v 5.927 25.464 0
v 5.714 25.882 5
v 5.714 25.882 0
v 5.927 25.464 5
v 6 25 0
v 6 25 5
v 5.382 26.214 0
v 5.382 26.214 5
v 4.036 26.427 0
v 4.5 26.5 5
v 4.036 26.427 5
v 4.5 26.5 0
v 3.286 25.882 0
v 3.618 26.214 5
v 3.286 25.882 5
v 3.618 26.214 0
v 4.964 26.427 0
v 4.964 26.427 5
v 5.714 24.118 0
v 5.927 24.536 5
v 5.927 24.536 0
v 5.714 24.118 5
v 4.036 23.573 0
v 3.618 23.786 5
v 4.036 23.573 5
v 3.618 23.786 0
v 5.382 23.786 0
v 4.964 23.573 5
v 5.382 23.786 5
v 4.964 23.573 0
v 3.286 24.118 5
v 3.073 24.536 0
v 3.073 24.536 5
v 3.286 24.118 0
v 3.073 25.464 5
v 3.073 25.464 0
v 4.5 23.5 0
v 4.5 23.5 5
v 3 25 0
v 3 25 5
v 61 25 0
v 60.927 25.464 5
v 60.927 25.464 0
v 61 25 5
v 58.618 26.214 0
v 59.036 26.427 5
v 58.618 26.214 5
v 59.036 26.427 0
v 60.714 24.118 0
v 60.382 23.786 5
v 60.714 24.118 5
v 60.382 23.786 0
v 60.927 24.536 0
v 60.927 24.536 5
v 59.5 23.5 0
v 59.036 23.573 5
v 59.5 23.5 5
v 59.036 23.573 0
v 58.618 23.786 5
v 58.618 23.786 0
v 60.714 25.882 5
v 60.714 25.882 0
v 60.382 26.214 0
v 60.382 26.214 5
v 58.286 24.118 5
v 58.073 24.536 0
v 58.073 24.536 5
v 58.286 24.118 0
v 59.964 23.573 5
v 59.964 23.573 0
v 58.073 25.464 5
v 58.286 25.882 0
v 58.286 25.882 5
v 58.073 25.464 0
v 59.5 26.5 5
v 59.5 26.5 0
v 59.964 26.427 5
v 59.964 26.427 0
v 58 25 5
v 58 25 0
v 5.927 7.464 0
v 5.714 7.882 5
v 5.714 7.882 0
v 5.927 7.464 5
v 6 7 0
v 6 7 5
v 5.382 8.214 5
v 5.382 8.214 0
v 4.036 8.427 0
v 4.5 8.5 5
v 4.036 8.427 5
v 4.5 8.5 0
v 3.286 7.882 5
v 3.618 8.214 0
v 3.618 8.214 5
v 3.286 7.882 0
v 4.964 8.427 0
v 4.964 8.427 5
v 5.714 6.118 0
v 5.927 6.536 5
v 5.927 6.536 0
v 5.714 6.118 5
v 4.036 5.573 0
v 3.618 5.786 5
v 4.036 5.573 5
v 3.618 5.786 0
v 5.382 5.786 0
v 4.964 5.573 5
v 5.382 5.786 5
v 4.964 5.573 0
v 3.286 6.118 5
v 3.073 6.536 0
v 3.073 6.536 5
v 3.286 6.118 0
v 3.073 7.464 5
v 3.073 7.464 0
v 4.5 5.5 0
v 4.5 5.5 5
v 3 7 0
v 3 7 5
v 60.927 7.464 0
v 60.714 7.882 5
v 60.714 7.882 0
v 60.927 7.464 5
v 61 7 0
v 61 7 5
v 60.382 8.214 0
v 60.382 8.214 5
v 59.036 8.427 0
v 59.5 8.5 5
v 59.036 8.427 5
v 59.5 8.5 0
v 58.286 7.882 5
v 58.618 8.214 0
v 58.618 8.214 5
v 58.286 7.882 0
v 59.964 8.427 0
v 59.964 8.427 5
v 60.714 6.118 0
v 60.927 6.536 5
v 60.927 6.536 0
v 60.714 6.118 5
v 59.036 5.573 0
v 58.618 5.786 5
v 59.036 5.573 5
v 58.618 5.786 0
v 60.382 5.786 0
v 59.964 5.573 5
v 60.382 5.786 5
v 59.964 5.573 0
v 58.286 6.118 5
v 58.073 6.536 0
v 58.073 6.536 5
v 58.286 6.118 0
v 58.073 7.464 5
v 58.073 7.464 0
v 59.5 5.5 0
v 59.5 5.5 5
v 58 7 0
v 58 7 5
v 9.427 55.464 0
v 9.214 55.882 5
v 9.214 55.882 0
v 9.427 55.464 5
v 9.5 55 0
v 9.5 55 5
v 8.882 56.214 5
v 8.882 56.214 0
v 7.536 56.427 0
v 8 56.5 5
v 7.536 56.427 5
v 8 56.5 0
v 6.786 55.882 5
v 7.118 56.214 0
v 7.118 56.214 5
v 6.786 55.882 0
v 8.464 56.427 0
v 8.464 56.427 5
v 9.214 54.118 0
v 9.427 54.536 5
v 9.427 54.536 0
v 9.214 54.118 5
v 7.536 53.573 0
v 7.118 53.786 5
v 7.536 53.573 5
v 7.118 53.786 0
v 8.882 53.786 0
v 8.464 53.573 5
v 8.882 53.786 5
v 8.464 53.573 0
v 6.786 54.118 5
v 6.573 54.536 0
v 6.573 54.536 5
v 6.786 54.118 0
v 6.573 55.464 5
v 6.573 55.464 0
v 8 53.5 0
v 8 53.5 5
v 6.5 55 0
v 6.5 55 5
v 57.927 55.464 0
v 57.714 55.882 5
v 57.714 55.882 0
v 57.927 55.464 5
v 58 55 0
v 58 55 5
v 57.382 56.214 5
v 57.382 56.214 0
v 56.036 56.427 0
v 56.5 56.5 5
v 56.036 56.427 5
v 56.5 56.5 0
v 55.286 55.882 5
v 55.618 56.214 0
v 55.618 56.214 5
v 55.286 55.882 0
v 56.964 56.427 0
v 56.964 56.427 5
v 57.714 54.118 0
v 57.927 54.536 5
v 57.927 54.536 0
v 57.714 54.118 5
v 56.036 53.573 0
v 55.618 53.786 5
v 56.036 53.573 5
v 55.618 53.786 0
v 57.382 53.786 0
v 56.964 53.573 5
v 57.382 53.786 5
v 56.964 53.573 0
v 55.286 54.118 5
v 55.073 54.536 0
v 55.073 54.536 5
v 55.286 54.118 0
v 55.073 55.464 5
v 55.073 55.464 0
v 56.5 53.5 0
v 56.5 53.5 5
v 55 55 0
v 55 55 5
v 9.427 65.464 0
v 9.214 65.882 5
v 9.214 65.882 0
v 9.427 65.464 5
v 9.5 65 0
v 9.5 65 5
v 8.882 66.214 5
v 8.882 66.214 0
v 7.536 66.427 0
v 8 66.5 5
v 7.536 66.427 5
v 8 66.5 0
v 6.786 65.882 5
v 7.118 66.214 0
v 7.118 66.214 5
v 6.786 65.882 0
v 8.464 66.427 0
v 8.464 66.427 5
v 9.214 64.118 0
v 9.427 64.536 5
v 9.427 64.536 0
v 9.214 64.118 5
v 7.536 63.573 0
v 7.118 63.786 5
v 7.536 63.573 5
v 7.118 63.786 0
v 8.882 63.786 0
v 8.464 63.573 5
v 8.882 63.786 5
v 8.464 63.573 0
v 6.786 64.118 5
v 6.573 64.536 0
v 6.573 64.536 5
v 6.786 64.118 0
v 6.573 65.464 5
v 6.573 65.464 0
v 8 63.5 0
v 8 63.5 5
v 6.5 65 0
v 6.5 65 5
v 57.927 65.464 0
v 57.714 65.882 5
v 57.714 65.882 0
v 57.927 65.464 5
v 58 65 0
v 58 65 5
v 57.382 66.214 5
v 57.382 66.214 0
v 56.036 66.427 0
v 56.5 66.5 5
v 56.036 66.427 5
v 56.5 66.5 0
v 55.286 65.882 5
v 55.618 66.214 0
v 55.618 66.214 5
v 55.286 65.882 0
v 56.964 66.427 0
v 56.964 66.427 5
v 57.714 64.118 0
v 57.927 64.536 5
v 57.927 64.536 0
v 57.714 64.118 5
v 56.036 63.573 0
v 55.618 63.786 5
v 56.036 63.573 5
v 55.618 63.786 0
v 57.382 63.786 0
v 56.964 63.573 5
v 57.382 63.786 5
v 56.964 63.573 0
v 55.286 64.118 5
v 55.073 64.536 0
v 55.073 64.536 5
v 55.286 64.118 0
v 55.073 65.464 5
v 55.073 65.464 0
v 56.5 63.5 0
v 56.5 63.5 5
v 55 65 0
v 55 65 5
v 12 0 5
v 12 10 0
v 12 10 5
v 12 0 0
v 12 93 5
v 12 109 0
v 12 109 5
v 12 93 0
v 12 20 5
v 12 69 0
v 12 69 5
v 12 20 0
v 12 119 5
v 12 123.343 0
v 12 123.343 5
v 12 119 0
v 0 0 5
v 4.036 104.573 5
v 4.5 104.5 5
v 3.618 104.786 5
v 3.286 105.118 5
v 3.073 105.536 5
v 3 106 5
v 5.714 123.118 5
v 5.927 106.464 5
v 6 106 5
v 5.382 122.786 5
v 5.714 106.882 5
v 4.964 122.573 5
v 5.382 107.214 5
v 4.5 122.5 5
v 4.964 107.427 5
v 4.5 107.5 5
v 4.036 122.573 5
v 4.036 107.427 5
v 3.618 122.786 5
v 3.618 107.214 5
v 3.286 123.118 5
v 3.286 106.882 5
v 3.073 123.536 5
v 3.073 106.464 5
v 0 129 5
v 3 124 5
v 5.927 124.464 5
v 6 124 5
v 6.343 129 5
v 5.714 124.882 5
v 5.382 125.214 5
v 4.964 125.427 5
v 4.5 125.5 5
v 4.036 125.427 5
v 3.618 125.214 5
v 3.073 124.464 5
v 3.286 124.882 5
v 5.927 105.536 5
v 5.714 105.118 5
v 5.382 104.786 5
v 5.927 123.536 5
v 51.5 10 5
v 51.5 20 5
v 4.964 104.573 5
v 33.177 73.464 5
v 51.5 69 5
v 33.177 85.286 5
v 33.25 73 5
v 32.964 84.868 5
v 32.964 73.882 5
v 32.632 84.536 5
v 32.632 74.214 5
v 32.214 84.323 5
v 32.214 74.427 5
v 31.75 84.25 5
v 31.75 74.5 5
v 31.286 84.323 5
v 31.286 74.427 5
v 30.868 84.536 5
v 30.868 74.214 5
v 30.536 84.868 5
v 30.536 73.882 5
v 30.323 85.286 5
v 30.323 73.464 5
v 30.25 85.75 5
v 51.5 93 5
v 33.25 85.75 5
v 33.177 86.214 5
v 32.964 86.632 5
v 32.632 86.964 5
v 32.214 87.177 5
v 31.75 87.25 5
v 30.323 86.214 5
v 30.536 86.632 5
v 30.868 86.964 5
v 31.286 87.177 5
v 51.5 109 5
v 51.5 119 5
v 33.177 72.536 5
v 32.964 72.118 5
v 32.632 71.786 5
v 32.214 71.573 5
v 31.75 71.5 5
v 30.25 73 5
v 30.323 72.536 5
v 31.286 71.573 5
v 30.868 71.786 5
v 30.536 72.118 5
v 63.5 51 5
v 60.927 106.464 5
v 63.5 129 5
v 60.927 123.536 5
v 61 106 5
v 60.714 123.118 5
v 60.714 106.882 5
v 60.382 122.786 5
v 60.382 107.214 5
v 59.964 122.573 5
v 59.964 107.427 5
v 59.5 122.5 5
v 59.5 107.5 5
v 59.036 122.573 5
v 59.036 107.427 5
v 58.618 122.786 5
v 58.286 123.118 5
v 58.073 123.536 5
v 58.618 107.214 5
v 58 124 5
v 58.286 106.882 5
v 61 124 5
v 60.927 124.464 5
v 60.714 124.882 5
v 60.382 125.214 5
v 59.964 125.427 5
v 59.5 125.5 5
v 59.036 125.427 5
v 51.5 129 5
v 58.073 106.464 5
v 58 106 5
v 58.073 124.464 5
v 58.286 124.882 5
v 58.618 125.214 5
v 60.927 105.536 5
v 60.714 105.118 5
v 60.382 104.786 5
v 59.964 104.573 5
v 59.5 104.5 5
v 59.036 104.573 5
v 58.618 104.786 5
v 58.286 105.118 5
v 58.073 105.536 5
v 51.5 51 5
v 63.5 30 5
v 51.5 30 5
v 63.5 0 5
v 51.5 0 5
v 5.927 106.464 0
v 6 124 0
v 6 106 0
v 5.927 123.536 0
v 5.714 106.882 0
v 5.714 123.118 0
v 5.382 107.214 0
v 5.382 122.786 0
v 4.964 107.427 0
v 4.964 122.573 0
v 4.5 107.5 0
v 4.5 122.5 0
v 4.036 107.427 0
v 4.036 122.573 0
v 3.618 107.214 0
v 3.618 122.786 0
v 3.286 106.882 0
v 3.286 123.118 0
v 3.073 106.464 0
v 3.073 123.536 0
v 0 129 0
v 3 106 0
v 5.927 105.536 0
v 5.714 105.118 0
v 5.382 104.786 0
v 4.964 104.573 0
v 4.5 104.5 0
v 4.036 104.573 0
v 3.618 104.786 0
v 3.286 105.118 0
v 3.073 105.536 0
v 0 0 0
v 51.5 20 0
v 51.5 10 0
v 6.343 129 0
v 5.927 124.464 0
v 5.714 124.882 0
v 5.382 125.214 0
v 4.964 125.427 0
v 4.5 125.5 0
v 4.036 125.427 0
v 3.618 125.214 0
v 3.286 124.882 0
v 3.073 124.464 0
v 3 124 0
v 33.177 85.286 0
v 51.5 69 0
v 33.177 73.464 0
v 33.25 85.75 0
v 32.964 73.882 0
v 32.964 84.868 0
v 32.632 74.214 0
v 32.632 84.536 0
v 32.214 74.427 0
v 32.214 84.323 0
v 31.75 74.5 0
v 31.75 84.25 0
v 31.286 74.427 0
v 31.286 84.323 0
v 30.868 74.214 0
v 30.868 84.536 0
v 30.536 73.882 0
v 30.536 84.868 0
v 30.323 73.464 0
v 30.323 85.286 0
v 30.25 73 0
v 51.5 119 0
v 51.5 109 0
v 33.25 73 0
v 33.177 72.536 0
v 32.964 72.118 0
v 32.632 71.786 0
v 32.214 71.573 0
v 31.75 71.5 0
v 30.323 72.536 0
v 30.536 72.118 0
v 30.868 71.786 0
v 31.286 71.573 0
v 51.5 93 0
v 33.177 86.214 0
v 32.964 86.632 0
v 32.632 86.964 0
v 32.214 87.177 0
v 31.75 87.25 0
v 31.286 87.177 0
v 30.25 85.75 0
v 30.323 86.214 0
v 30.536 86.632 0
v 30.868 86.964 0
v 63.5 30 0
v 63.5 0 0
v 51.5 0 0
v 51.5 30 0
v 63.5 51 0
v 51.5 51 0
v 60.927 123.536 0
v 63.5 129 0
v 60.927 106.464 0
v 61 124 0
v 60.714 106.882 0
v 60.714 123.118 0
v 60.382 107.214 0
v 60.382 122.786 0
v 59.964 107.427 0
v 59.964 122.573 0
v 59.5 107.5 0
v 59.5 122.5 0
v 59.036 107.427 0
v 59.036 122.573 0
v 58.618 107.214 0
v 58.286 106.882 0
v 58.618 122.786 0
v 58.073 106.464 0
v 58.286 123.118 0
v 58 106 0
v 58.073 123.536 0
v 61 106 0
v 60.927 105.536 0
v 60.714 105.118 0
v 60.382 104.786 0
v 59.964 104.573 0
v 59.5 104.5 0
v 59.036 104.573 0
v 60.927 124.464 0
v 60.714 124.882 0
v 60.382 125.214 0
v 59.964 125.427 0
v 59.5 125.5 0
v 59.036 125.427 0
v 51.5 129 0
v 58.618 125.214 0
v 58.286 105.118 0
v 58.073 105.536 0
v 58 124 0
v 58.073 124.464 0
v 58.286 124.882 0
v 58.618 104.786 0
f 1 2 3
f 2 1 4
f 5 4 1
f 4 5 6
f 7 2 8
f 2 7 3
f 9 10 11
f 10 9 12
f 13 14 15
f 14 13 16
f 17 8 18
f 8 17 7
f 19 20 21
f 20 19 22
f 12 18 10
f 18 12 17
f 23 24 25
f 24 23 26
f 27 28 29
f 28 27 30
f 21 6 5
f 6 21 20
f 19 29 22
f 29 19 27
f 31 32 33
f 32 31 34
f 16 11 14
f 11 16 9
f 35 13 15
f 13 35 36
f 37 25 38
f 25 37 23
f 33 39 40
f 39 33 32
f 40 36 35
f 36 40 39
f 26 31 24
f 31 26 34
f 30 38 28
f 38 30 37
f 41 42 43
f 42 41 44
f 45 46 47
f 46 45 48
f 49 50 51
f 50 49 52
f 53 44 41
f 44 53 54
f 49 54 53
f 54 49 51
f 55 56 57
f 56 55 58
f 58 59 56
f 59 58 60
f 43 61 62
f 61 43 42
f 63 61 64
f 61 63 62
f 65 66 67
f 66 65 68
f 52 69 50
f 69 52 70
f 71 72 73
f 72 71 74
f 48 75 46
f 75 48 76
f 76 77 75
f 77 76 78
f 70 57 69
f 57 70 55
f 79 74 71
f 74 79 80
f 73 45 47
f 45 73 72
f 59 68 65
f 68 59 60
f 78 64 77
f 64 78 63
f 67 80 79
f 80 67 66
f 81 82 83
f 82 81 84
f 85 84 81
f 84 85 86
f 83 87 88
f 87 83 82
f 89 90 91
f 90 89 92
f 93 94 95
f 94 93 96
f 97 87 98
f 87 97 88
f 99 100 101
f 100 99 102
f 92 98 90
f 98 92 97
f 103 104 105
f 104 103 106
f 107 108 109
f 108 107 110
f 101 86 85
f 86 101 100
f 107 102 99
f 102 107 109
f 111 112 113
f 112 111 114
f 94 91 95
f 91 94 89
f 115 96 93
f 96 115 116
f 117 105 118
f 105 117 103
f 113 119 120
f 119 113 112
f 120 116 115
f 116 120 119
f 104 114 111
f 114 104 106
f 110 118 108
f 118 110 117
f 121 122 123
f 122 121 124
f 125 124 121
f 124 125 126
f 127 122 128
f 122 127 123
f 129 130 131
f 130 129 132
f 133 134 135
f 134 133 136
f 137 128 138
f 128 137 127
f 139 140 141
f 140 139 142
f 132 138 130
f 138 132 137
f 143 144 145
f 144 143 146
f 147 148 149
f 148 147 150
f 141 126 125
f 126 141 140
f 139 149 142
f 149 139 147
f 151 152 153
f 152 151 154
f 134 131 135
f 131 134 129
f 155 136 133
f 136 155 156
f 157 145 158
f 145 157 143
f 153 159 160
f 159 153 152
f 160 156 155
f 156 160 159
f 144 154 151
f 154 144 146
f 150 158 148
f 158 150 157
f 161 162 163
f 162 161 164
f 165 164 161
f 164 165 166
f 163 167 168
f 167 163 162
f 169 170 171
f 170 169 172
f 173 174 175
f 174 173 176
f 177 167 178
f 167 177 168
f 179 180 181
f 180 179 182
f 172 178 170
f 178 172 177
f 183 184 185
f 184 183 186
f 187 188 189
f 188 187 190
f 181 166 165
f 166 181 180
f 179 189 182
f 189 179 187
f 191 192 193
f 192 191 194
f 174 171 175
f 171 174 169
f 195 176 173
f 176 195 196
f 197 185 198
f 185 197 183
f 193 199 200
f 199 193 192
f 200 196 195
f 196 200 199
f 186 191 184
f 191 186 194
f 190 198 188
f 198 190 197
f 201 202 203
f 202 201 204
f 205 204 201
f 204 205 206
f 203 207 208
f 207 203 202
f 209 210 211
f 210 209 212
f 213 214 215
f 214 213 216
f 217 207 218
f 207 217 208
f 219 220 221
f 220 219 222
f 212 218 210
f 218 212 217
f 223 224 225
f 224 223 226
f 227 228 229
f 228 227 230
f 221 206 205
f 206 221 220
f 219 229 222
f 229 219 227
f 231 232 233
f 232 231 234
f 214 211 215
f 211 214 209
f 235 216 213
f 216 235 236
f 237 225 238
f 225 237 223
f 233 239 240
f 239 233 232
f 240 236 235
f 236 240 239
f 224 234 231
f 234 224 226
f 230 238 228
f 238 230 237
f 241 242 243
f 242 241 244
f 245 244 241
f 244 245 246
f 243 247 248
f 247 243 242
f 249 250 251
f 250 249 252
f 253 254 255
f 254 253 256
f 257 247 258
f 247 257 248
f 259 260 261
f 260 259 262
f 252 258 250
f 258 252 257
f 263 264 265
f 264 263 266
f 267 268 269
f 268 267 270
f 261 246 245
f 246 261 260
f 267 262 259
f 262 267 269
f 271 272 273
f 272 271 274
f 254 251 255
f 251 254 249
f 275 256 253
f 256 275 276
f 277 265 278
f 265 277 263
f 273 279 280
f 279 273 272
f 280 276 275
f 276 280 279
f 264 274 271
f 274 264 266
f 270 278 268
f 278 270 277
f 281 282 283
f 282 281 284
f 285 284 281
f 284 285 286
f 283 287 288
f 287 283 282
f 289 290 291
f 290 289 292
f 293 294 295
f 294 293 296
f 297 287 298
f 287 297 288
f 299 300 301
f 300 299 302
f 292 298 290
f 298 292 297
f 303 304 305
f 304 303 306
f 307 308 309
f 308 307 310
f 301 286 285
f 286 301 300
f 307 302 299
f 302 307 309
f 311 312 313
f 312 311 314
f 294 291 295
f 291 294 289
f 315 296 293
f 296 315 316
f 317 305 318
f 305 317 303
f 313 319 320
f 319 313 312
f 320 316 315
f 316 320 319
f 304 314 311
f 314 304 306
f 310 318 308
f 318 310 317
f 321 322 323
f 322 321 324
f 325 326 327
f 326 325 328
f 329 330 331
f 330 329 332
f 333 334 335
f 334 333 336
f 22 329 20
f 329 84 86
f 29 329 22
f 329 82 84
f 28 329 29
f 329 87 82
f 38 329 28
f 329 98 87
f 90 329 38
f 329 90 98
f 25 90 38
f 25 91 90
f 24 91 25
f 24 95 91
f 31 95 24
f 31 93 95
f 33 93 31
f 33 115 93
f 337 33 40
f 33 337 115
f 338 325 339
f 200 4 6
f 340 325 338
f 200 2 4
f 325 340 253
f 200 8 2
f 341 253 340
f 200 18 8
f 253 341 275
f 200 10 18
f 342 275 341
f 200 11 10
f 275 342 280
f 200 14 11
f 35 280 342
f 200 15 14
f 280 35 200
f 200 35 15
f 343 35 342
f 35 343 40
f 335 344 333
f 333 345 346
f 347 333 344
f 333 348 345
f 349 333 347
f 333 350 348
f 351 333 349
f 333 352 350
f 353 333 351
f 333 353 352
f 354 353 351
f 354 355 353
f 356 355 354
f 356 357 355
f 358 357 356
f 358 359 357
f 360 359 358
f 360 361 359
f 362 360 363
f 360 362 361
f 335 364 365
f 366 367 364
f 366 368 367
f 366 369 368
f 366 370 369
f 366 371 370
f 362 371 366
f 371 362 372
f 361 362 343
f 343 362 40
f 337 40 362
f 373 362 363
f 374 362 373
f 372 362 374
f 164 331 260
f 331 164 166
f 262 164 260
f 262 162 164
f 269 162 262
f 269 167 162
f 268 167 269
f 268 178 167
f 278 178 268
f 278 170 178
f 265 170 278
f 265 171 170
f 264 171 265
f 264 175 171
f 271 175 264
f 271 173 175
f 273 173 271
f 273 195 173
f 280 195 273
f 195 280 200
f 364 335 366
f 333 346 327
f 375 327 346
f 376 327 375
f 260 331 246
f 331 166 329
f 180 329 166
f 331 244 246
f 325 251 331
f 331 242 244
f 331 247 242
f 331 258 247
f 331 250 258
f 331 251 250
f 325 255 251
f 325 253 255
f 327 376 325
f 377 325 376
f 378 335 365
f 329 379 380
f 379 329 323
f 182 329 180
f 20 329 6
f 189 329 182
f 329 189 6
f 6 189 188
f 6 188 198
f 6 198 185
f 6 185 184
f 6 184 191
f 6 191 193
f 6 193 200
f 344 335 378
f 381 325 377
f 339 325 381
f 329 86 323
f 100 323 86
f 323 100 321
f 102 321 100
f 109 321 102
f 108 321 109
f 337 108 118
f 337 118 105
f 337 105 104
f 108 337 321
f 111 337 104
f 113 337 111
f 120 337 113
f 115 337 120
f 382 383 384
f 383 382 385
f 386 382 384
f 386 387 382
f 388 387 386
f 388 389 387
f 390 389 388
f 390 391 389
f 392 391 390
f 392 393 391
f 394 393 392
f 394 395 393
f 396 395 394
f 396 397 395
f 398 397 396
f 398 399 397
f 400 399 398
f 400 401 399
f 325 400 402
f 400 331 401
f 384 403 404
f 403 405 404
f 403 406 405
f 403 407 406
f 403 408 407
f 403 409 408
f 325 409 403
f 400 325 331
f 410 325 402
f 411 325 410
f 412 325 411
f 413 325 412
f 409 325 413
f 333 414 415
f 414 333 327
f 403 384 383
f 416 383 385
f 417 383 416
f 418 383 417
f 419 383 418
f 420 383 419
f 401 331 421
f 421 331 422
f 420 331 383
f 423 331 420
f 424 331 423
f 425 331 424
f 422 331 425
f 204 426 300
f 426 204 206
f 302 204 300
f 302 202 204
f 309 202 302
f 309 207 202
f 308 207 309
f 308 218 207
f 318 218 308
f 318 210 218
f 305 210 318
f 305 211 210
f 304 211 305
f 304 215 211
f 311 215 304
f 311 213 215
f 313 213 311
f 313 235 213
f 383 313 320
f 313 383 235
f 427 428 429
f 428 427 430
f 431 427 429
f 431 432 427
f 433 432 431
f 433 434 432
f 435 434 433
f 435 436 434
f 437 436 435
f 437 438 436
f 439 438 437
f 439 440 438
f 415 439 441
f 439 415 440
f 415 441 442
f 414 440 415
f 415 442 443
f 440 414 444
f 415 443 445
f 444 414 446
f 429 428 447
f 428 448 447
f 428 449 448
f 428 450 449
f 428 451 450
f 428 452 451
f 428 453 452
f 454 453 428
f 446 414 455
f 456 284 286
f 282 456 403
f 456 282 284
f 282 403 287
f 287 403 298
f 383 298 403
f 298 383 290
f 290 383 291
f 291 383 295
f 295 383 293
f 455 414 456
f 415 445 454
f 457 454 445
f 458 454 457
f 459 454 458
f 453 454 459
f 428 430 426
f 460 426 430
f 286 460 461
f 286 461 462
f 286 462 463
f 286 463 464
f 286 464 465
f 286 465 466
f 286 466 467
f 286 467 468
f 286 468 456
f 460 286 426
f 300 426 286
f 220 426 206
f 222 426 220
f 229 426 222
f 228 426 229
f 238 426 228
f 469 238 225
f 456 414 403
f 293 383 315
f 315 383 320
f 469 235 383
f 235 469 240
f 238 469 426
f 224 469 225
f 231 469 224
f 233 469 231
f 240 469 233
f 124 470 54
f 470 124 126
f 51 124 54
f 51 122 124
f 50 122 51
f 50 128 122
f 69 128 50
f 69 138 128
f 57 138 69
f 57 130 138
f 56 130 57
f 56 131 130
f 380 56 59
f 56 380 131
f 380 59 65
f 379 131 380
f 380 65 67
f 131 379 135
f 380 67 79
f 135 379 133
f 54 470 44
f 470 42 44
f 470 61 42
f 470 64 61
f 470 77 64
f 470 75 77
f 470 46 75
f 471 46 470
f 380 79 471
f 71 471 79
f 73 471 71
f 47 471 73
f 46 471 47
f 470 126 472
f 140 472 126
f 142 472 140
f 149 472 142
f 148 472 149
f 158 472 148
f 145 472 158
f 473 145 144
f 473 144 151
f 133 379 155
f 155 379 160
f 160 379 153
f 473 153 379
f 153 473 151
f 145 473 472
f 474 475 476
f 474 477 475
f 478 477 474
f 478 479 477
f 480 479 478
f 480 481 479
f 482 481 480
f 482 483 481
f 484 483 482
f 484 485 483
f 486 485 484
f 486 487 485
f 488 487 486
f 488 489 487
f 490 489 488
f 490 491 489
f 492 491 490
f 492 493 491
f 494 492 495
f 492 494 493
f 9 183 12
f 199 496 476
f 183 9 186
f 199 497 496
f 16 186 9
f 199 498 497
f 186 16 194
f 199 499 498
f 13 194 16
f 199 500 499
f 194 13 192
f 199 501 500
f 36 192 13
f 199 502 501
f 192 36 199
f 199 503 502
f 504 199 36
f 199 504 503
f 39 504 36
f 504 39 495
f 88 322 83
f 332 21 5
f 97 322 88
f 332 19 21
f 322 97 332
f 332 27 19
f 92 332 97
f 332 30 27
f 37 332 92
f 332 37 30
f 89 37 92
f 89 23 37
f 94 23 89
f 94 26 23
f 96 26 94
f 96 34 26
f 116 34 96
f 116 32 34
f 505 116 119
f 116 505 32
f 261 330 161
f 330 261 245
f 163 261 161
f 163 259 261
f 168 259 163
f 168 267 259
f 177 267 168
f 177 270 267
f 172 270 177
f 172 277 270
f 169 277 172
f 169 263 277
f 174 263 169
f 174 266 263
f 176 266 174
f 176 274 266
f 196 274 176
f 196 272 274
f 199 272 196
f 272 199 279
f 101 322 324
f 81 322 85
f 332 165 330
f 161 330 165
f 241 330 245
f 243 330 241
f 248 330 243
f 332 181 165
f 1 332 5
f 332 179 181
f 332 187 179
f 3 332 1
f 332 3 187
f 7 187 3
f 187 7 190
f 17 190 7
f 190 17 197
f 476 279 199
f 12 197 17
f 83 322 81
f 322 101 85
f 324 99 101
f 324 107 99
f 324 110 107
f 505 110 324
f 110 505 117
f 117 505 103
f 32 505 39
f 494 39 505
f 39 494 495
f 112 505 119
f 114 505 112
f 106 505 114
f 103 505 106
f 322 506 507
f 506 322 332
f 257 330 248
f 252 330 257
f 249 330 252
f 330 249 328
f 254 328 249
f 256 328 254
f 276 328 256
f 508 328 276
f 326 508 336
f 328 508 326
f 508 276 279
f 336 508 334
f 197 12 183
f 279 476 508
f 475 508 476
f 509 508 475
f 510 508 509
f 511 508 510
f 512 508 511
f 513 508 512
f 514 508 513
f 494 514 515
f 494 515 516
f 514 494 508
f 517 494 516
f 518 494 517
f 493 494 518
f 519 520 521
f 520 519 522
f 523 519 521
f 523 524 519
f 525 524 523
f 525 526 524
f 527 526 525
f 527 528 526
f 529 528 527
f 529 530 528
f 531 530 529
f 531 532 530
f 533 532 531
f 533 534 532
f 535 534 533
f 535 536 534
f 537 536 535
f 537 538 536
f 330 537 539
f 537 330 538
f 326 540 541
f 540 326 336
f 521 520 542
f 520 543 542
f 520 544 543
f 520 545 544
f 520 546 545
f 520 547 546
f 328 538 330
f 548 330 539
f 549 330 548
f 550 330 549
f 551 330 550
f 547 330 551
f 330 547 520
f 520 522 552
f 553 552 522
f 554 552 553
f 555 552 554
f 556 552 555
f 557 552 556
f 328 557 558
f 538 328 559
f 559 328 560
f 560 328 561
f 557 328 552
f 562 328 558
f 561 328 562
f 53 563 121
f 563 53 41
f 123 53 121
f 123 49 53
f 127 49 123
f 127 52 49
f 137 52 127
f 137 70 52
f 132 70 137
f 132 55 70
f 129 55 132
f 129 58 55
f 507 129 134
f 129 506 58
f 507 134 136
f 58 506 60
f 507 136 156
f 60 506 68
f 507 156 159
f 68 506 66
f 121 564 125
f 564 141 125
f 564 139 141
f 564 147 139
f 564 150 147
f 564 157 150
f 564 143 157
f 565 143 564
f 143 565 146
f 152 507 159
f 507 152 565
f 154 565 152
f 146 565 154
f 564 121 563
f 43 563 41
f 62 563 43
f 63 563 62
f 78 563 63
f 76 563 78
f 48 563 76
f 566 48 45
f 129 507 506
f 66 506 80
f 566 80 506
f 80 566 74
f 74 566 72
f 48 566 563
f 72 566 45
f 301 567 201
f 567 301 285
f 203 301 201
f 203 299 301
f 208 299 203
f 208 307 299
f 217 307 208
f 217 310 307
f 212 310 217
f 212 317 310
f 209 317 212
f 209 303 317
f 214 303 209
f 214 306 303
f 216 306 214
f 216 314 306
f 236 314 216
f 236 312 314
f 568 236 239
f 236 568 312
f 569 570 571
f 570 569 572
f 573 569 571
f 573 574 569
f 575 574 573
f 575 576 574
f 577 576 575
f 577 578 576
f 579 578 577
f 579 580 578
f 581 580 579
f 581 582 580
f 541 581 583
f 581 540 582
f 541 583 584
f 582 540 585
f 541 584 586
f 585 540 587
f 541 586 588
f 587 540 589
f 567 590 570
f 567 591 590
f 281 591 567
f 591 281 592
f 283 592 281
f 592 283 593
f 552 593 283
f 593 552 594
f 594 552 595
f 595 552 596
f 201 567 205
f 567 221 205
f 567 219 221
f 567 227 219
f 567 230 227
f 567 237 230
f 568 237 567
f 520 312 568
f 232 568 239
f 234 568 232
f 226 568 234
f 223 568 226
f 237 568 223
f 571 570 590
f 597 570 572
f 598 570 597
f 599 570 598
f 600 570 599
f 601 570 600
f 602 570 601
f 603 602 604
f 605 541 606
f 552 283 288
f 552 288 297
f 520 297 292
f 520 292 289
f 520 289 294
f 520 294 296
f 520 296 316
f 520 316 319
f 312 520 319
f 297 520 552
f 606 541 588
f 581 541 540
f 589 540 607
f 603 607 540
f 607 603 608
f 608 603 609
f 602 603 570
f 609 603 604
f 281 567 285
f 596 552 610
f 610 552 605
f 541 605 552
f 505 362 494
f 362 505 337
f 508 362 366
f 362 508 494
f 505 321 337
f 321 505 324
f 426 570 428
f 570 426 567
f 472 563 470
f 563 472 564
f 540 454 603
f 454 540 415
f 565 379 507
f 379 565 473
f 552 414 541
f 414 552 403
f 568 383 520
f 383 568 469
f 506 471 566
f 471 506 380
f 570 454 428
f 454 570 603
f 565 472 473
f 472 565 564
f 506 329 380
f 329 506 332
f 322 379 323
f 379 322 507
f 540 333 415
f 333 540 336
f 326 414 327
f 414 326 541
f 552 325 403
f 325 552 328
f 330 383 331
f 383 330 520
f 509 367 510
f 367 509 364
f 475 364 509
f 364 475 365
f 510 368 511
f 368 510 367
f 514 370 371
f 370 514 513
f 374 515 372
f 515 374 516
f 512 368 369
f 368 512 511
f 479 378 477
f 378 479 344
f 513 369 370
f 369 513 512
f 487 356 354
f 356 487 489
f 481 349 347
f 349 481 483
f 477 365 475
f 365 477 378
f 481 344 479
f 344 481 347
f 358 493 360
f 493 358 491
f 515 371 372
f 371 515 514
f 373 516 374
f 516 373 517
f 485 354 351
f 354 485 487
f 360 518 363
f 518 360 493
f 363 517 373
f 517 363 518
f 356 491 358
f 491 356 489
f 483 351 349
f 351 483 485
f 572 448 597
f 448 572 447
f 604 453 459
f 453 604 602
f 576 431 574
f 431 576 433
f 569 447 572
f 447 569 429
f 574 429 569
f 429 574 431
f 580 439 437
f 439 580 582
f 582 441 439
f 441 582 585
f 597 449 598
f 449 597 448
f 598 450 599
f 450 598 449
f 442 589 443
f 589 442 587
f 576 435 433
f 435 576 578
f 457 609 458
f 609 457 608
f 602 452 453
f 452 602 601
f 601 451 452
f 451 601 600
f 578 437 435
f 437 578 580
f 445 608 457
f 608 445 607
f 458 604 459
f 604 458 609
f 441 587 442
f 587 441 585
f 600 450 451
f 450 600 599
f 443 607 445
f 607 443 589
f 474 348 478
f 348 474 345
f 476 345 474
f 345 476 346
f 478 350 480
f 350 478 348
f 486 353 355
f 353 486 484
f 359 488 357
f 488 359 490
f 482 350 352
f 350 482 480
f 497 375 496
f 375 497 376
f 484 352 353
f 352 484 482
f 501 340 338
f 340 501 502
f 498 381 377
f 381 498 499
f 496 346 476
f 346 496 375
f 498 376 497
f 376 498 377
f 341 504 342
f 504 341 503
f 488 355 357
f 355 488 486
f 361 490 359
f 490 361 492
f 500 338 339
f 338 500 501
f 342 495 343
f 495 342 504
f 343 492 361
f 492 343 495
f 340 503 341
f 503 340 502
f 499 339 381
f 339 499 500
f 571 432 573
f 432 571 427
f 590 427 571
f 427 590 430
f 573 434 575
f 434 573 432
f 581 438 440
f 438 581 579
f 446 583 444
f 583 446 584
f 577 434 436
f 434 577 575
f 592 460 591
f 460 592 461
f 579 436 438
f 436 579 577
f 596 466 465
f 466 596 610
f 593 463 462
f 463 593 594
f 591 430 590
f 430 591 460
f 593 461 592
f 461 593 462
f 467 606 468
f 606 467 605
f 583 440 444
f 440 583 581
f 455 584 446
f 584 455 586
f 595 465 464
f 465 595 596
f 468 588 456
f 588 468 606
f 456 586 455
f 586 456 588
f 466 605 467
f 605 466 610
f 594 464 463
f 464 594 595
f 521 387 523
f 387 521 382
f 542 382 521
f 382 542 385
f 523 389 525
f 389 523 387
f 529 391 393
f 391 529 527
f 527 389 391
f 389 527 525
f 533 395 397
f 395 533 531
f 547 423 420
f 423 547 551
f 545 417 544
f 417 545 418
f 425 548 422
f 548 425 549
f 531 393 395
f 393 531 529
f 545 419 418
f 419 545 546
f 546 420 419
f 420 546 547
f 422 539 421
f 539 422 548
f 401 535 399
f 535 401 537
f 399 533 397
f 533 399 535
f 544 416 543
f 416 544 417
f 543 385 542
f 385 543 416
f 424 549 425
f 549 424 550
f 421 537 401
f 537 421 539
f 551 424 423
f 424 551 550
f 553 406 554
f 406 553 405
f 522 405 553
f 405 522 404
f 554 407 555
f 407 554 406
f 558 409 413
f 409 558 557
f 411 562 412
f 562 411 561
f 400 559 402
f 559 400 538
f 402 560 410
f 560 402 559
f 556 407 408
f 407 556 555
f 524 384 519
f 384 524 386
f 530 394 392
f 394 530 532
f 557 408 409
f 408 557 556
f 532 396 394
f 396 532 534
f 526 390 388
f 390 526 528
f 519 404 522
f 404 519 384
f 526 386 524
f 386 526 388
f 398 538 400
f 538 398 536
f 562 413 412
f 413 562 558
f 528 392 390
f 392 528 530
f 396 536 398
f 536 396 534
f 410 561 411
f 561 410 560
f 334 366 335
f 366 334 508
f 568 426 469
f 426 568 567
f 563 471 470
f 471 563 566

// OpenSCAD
// v3 of hold bar

// all dimensions are in mm
bar1_width = 12;    // mm
bar1_length = 129;      // was 133
bar1_height = 5;        // test at 1mm, final at 5mm

board_inner_edge_to_edge = 63.5;
front_edge_to_front_edge = board_inner_edge_to_edge-bar1_width;

hole_r = 3/2;       // 3mm diameter

// middle cross bar
cross_bar3_offset = 69; // offset down
cross_bar3_width = 24;
first_bar3_hole_offset = 73;

module holes() {
    // holes
    union() {
        translate([4.5,7,5]) {
            cylinder(20, hole_r, hole_r, center=true, $fn=20);
        }
        translate([board_inner_edge_to_edge-4,7,5]) {
            cylinder(20, hole_r, hole_r, center=true, $fn=20);
        }
        translate([0,18,0]) {
            translate([4.5,7,5]) {
                cylinder(20, hole_r, hole_r, center=true, $fn=20);
            }
            translate([board_inner_edge_to_edge-4,7,5]) {
                cylinder(20, hole_r, hole_r, center=true, $fn=20);
            }
        }
    }
}
module secondary_holes() {
    union() {
        translate([8,55,5]) {
            cylinder(20, hole_r, hole_r, center=true, $fn=20);
        }
        translate([board_inner_edge_to_edge-7,55,5]) {
            cylinder(20, hole_r, hole_r, center=true, $fn=20);
        }
    }
}

difference() {
    union() {
        // front to back bars
        cube([bar1_width,bar1_length,bar1_height], center=false);

        translate([front_edge_to_front_edge, 0, 0]) {
            cube([bar1_width,bar1_length,bar1_height], center=false);
        }


        cross_bar1_offset = 10;
        cross_bar1_width = 10;

        cross_bar2_width = 10;
        cross_bar2_offset = (bar1_length-10)-cross_bar2_width;

        // cross bars
        translate([0,cross_bar1_offset,0]) {
         cube([board_inner_edge_to_edge, 10, bar1_height], center = false);
        }
        translate([0,cross_bar2_offset,0]) {
         cube([board_inner_edge_to_edge, cross_bar2_width, bar1_height], center = false);
        }

        // middle cross bar
        translate([0,cross_bar3_offset,0]) {
         cube([board_inner_edge_to_edge, cross_bar3_width, bar1_height], center = false);
        }
        

    }

    // remove holes and stuff
    union() {
        // holes on side posts
        holes();
        translate([0,81+18,0]) holes();
        // holes for sensors normally - just in case
        secondary_holes();
        translate([0,10,0]) secondary_holes();
        
        // remove corner for component
        translate([bar1_width,bar1_length,0]) rotate([0,0,45]) cube([8,8,bar1_height*4],center=true);        
        // holes on middle bar
        translate([board_inner_edge_to_edge/2,first_bar3_hole_offset,5]) {
            cylinder(20, hole_r, hole_r, center=true, $fn=20);
            translate([0,12.75,0]) {
                cylinder(20, hole_r, hole_r, center=true, $fn=20);
            }
        }
        
        // remove location for back driver
        // 30mm to 52mm
        translate([front_edge_to_front_edge-2,30,-2]) cube([21,21,bar1_height*4],center=false);
        

    }
}
